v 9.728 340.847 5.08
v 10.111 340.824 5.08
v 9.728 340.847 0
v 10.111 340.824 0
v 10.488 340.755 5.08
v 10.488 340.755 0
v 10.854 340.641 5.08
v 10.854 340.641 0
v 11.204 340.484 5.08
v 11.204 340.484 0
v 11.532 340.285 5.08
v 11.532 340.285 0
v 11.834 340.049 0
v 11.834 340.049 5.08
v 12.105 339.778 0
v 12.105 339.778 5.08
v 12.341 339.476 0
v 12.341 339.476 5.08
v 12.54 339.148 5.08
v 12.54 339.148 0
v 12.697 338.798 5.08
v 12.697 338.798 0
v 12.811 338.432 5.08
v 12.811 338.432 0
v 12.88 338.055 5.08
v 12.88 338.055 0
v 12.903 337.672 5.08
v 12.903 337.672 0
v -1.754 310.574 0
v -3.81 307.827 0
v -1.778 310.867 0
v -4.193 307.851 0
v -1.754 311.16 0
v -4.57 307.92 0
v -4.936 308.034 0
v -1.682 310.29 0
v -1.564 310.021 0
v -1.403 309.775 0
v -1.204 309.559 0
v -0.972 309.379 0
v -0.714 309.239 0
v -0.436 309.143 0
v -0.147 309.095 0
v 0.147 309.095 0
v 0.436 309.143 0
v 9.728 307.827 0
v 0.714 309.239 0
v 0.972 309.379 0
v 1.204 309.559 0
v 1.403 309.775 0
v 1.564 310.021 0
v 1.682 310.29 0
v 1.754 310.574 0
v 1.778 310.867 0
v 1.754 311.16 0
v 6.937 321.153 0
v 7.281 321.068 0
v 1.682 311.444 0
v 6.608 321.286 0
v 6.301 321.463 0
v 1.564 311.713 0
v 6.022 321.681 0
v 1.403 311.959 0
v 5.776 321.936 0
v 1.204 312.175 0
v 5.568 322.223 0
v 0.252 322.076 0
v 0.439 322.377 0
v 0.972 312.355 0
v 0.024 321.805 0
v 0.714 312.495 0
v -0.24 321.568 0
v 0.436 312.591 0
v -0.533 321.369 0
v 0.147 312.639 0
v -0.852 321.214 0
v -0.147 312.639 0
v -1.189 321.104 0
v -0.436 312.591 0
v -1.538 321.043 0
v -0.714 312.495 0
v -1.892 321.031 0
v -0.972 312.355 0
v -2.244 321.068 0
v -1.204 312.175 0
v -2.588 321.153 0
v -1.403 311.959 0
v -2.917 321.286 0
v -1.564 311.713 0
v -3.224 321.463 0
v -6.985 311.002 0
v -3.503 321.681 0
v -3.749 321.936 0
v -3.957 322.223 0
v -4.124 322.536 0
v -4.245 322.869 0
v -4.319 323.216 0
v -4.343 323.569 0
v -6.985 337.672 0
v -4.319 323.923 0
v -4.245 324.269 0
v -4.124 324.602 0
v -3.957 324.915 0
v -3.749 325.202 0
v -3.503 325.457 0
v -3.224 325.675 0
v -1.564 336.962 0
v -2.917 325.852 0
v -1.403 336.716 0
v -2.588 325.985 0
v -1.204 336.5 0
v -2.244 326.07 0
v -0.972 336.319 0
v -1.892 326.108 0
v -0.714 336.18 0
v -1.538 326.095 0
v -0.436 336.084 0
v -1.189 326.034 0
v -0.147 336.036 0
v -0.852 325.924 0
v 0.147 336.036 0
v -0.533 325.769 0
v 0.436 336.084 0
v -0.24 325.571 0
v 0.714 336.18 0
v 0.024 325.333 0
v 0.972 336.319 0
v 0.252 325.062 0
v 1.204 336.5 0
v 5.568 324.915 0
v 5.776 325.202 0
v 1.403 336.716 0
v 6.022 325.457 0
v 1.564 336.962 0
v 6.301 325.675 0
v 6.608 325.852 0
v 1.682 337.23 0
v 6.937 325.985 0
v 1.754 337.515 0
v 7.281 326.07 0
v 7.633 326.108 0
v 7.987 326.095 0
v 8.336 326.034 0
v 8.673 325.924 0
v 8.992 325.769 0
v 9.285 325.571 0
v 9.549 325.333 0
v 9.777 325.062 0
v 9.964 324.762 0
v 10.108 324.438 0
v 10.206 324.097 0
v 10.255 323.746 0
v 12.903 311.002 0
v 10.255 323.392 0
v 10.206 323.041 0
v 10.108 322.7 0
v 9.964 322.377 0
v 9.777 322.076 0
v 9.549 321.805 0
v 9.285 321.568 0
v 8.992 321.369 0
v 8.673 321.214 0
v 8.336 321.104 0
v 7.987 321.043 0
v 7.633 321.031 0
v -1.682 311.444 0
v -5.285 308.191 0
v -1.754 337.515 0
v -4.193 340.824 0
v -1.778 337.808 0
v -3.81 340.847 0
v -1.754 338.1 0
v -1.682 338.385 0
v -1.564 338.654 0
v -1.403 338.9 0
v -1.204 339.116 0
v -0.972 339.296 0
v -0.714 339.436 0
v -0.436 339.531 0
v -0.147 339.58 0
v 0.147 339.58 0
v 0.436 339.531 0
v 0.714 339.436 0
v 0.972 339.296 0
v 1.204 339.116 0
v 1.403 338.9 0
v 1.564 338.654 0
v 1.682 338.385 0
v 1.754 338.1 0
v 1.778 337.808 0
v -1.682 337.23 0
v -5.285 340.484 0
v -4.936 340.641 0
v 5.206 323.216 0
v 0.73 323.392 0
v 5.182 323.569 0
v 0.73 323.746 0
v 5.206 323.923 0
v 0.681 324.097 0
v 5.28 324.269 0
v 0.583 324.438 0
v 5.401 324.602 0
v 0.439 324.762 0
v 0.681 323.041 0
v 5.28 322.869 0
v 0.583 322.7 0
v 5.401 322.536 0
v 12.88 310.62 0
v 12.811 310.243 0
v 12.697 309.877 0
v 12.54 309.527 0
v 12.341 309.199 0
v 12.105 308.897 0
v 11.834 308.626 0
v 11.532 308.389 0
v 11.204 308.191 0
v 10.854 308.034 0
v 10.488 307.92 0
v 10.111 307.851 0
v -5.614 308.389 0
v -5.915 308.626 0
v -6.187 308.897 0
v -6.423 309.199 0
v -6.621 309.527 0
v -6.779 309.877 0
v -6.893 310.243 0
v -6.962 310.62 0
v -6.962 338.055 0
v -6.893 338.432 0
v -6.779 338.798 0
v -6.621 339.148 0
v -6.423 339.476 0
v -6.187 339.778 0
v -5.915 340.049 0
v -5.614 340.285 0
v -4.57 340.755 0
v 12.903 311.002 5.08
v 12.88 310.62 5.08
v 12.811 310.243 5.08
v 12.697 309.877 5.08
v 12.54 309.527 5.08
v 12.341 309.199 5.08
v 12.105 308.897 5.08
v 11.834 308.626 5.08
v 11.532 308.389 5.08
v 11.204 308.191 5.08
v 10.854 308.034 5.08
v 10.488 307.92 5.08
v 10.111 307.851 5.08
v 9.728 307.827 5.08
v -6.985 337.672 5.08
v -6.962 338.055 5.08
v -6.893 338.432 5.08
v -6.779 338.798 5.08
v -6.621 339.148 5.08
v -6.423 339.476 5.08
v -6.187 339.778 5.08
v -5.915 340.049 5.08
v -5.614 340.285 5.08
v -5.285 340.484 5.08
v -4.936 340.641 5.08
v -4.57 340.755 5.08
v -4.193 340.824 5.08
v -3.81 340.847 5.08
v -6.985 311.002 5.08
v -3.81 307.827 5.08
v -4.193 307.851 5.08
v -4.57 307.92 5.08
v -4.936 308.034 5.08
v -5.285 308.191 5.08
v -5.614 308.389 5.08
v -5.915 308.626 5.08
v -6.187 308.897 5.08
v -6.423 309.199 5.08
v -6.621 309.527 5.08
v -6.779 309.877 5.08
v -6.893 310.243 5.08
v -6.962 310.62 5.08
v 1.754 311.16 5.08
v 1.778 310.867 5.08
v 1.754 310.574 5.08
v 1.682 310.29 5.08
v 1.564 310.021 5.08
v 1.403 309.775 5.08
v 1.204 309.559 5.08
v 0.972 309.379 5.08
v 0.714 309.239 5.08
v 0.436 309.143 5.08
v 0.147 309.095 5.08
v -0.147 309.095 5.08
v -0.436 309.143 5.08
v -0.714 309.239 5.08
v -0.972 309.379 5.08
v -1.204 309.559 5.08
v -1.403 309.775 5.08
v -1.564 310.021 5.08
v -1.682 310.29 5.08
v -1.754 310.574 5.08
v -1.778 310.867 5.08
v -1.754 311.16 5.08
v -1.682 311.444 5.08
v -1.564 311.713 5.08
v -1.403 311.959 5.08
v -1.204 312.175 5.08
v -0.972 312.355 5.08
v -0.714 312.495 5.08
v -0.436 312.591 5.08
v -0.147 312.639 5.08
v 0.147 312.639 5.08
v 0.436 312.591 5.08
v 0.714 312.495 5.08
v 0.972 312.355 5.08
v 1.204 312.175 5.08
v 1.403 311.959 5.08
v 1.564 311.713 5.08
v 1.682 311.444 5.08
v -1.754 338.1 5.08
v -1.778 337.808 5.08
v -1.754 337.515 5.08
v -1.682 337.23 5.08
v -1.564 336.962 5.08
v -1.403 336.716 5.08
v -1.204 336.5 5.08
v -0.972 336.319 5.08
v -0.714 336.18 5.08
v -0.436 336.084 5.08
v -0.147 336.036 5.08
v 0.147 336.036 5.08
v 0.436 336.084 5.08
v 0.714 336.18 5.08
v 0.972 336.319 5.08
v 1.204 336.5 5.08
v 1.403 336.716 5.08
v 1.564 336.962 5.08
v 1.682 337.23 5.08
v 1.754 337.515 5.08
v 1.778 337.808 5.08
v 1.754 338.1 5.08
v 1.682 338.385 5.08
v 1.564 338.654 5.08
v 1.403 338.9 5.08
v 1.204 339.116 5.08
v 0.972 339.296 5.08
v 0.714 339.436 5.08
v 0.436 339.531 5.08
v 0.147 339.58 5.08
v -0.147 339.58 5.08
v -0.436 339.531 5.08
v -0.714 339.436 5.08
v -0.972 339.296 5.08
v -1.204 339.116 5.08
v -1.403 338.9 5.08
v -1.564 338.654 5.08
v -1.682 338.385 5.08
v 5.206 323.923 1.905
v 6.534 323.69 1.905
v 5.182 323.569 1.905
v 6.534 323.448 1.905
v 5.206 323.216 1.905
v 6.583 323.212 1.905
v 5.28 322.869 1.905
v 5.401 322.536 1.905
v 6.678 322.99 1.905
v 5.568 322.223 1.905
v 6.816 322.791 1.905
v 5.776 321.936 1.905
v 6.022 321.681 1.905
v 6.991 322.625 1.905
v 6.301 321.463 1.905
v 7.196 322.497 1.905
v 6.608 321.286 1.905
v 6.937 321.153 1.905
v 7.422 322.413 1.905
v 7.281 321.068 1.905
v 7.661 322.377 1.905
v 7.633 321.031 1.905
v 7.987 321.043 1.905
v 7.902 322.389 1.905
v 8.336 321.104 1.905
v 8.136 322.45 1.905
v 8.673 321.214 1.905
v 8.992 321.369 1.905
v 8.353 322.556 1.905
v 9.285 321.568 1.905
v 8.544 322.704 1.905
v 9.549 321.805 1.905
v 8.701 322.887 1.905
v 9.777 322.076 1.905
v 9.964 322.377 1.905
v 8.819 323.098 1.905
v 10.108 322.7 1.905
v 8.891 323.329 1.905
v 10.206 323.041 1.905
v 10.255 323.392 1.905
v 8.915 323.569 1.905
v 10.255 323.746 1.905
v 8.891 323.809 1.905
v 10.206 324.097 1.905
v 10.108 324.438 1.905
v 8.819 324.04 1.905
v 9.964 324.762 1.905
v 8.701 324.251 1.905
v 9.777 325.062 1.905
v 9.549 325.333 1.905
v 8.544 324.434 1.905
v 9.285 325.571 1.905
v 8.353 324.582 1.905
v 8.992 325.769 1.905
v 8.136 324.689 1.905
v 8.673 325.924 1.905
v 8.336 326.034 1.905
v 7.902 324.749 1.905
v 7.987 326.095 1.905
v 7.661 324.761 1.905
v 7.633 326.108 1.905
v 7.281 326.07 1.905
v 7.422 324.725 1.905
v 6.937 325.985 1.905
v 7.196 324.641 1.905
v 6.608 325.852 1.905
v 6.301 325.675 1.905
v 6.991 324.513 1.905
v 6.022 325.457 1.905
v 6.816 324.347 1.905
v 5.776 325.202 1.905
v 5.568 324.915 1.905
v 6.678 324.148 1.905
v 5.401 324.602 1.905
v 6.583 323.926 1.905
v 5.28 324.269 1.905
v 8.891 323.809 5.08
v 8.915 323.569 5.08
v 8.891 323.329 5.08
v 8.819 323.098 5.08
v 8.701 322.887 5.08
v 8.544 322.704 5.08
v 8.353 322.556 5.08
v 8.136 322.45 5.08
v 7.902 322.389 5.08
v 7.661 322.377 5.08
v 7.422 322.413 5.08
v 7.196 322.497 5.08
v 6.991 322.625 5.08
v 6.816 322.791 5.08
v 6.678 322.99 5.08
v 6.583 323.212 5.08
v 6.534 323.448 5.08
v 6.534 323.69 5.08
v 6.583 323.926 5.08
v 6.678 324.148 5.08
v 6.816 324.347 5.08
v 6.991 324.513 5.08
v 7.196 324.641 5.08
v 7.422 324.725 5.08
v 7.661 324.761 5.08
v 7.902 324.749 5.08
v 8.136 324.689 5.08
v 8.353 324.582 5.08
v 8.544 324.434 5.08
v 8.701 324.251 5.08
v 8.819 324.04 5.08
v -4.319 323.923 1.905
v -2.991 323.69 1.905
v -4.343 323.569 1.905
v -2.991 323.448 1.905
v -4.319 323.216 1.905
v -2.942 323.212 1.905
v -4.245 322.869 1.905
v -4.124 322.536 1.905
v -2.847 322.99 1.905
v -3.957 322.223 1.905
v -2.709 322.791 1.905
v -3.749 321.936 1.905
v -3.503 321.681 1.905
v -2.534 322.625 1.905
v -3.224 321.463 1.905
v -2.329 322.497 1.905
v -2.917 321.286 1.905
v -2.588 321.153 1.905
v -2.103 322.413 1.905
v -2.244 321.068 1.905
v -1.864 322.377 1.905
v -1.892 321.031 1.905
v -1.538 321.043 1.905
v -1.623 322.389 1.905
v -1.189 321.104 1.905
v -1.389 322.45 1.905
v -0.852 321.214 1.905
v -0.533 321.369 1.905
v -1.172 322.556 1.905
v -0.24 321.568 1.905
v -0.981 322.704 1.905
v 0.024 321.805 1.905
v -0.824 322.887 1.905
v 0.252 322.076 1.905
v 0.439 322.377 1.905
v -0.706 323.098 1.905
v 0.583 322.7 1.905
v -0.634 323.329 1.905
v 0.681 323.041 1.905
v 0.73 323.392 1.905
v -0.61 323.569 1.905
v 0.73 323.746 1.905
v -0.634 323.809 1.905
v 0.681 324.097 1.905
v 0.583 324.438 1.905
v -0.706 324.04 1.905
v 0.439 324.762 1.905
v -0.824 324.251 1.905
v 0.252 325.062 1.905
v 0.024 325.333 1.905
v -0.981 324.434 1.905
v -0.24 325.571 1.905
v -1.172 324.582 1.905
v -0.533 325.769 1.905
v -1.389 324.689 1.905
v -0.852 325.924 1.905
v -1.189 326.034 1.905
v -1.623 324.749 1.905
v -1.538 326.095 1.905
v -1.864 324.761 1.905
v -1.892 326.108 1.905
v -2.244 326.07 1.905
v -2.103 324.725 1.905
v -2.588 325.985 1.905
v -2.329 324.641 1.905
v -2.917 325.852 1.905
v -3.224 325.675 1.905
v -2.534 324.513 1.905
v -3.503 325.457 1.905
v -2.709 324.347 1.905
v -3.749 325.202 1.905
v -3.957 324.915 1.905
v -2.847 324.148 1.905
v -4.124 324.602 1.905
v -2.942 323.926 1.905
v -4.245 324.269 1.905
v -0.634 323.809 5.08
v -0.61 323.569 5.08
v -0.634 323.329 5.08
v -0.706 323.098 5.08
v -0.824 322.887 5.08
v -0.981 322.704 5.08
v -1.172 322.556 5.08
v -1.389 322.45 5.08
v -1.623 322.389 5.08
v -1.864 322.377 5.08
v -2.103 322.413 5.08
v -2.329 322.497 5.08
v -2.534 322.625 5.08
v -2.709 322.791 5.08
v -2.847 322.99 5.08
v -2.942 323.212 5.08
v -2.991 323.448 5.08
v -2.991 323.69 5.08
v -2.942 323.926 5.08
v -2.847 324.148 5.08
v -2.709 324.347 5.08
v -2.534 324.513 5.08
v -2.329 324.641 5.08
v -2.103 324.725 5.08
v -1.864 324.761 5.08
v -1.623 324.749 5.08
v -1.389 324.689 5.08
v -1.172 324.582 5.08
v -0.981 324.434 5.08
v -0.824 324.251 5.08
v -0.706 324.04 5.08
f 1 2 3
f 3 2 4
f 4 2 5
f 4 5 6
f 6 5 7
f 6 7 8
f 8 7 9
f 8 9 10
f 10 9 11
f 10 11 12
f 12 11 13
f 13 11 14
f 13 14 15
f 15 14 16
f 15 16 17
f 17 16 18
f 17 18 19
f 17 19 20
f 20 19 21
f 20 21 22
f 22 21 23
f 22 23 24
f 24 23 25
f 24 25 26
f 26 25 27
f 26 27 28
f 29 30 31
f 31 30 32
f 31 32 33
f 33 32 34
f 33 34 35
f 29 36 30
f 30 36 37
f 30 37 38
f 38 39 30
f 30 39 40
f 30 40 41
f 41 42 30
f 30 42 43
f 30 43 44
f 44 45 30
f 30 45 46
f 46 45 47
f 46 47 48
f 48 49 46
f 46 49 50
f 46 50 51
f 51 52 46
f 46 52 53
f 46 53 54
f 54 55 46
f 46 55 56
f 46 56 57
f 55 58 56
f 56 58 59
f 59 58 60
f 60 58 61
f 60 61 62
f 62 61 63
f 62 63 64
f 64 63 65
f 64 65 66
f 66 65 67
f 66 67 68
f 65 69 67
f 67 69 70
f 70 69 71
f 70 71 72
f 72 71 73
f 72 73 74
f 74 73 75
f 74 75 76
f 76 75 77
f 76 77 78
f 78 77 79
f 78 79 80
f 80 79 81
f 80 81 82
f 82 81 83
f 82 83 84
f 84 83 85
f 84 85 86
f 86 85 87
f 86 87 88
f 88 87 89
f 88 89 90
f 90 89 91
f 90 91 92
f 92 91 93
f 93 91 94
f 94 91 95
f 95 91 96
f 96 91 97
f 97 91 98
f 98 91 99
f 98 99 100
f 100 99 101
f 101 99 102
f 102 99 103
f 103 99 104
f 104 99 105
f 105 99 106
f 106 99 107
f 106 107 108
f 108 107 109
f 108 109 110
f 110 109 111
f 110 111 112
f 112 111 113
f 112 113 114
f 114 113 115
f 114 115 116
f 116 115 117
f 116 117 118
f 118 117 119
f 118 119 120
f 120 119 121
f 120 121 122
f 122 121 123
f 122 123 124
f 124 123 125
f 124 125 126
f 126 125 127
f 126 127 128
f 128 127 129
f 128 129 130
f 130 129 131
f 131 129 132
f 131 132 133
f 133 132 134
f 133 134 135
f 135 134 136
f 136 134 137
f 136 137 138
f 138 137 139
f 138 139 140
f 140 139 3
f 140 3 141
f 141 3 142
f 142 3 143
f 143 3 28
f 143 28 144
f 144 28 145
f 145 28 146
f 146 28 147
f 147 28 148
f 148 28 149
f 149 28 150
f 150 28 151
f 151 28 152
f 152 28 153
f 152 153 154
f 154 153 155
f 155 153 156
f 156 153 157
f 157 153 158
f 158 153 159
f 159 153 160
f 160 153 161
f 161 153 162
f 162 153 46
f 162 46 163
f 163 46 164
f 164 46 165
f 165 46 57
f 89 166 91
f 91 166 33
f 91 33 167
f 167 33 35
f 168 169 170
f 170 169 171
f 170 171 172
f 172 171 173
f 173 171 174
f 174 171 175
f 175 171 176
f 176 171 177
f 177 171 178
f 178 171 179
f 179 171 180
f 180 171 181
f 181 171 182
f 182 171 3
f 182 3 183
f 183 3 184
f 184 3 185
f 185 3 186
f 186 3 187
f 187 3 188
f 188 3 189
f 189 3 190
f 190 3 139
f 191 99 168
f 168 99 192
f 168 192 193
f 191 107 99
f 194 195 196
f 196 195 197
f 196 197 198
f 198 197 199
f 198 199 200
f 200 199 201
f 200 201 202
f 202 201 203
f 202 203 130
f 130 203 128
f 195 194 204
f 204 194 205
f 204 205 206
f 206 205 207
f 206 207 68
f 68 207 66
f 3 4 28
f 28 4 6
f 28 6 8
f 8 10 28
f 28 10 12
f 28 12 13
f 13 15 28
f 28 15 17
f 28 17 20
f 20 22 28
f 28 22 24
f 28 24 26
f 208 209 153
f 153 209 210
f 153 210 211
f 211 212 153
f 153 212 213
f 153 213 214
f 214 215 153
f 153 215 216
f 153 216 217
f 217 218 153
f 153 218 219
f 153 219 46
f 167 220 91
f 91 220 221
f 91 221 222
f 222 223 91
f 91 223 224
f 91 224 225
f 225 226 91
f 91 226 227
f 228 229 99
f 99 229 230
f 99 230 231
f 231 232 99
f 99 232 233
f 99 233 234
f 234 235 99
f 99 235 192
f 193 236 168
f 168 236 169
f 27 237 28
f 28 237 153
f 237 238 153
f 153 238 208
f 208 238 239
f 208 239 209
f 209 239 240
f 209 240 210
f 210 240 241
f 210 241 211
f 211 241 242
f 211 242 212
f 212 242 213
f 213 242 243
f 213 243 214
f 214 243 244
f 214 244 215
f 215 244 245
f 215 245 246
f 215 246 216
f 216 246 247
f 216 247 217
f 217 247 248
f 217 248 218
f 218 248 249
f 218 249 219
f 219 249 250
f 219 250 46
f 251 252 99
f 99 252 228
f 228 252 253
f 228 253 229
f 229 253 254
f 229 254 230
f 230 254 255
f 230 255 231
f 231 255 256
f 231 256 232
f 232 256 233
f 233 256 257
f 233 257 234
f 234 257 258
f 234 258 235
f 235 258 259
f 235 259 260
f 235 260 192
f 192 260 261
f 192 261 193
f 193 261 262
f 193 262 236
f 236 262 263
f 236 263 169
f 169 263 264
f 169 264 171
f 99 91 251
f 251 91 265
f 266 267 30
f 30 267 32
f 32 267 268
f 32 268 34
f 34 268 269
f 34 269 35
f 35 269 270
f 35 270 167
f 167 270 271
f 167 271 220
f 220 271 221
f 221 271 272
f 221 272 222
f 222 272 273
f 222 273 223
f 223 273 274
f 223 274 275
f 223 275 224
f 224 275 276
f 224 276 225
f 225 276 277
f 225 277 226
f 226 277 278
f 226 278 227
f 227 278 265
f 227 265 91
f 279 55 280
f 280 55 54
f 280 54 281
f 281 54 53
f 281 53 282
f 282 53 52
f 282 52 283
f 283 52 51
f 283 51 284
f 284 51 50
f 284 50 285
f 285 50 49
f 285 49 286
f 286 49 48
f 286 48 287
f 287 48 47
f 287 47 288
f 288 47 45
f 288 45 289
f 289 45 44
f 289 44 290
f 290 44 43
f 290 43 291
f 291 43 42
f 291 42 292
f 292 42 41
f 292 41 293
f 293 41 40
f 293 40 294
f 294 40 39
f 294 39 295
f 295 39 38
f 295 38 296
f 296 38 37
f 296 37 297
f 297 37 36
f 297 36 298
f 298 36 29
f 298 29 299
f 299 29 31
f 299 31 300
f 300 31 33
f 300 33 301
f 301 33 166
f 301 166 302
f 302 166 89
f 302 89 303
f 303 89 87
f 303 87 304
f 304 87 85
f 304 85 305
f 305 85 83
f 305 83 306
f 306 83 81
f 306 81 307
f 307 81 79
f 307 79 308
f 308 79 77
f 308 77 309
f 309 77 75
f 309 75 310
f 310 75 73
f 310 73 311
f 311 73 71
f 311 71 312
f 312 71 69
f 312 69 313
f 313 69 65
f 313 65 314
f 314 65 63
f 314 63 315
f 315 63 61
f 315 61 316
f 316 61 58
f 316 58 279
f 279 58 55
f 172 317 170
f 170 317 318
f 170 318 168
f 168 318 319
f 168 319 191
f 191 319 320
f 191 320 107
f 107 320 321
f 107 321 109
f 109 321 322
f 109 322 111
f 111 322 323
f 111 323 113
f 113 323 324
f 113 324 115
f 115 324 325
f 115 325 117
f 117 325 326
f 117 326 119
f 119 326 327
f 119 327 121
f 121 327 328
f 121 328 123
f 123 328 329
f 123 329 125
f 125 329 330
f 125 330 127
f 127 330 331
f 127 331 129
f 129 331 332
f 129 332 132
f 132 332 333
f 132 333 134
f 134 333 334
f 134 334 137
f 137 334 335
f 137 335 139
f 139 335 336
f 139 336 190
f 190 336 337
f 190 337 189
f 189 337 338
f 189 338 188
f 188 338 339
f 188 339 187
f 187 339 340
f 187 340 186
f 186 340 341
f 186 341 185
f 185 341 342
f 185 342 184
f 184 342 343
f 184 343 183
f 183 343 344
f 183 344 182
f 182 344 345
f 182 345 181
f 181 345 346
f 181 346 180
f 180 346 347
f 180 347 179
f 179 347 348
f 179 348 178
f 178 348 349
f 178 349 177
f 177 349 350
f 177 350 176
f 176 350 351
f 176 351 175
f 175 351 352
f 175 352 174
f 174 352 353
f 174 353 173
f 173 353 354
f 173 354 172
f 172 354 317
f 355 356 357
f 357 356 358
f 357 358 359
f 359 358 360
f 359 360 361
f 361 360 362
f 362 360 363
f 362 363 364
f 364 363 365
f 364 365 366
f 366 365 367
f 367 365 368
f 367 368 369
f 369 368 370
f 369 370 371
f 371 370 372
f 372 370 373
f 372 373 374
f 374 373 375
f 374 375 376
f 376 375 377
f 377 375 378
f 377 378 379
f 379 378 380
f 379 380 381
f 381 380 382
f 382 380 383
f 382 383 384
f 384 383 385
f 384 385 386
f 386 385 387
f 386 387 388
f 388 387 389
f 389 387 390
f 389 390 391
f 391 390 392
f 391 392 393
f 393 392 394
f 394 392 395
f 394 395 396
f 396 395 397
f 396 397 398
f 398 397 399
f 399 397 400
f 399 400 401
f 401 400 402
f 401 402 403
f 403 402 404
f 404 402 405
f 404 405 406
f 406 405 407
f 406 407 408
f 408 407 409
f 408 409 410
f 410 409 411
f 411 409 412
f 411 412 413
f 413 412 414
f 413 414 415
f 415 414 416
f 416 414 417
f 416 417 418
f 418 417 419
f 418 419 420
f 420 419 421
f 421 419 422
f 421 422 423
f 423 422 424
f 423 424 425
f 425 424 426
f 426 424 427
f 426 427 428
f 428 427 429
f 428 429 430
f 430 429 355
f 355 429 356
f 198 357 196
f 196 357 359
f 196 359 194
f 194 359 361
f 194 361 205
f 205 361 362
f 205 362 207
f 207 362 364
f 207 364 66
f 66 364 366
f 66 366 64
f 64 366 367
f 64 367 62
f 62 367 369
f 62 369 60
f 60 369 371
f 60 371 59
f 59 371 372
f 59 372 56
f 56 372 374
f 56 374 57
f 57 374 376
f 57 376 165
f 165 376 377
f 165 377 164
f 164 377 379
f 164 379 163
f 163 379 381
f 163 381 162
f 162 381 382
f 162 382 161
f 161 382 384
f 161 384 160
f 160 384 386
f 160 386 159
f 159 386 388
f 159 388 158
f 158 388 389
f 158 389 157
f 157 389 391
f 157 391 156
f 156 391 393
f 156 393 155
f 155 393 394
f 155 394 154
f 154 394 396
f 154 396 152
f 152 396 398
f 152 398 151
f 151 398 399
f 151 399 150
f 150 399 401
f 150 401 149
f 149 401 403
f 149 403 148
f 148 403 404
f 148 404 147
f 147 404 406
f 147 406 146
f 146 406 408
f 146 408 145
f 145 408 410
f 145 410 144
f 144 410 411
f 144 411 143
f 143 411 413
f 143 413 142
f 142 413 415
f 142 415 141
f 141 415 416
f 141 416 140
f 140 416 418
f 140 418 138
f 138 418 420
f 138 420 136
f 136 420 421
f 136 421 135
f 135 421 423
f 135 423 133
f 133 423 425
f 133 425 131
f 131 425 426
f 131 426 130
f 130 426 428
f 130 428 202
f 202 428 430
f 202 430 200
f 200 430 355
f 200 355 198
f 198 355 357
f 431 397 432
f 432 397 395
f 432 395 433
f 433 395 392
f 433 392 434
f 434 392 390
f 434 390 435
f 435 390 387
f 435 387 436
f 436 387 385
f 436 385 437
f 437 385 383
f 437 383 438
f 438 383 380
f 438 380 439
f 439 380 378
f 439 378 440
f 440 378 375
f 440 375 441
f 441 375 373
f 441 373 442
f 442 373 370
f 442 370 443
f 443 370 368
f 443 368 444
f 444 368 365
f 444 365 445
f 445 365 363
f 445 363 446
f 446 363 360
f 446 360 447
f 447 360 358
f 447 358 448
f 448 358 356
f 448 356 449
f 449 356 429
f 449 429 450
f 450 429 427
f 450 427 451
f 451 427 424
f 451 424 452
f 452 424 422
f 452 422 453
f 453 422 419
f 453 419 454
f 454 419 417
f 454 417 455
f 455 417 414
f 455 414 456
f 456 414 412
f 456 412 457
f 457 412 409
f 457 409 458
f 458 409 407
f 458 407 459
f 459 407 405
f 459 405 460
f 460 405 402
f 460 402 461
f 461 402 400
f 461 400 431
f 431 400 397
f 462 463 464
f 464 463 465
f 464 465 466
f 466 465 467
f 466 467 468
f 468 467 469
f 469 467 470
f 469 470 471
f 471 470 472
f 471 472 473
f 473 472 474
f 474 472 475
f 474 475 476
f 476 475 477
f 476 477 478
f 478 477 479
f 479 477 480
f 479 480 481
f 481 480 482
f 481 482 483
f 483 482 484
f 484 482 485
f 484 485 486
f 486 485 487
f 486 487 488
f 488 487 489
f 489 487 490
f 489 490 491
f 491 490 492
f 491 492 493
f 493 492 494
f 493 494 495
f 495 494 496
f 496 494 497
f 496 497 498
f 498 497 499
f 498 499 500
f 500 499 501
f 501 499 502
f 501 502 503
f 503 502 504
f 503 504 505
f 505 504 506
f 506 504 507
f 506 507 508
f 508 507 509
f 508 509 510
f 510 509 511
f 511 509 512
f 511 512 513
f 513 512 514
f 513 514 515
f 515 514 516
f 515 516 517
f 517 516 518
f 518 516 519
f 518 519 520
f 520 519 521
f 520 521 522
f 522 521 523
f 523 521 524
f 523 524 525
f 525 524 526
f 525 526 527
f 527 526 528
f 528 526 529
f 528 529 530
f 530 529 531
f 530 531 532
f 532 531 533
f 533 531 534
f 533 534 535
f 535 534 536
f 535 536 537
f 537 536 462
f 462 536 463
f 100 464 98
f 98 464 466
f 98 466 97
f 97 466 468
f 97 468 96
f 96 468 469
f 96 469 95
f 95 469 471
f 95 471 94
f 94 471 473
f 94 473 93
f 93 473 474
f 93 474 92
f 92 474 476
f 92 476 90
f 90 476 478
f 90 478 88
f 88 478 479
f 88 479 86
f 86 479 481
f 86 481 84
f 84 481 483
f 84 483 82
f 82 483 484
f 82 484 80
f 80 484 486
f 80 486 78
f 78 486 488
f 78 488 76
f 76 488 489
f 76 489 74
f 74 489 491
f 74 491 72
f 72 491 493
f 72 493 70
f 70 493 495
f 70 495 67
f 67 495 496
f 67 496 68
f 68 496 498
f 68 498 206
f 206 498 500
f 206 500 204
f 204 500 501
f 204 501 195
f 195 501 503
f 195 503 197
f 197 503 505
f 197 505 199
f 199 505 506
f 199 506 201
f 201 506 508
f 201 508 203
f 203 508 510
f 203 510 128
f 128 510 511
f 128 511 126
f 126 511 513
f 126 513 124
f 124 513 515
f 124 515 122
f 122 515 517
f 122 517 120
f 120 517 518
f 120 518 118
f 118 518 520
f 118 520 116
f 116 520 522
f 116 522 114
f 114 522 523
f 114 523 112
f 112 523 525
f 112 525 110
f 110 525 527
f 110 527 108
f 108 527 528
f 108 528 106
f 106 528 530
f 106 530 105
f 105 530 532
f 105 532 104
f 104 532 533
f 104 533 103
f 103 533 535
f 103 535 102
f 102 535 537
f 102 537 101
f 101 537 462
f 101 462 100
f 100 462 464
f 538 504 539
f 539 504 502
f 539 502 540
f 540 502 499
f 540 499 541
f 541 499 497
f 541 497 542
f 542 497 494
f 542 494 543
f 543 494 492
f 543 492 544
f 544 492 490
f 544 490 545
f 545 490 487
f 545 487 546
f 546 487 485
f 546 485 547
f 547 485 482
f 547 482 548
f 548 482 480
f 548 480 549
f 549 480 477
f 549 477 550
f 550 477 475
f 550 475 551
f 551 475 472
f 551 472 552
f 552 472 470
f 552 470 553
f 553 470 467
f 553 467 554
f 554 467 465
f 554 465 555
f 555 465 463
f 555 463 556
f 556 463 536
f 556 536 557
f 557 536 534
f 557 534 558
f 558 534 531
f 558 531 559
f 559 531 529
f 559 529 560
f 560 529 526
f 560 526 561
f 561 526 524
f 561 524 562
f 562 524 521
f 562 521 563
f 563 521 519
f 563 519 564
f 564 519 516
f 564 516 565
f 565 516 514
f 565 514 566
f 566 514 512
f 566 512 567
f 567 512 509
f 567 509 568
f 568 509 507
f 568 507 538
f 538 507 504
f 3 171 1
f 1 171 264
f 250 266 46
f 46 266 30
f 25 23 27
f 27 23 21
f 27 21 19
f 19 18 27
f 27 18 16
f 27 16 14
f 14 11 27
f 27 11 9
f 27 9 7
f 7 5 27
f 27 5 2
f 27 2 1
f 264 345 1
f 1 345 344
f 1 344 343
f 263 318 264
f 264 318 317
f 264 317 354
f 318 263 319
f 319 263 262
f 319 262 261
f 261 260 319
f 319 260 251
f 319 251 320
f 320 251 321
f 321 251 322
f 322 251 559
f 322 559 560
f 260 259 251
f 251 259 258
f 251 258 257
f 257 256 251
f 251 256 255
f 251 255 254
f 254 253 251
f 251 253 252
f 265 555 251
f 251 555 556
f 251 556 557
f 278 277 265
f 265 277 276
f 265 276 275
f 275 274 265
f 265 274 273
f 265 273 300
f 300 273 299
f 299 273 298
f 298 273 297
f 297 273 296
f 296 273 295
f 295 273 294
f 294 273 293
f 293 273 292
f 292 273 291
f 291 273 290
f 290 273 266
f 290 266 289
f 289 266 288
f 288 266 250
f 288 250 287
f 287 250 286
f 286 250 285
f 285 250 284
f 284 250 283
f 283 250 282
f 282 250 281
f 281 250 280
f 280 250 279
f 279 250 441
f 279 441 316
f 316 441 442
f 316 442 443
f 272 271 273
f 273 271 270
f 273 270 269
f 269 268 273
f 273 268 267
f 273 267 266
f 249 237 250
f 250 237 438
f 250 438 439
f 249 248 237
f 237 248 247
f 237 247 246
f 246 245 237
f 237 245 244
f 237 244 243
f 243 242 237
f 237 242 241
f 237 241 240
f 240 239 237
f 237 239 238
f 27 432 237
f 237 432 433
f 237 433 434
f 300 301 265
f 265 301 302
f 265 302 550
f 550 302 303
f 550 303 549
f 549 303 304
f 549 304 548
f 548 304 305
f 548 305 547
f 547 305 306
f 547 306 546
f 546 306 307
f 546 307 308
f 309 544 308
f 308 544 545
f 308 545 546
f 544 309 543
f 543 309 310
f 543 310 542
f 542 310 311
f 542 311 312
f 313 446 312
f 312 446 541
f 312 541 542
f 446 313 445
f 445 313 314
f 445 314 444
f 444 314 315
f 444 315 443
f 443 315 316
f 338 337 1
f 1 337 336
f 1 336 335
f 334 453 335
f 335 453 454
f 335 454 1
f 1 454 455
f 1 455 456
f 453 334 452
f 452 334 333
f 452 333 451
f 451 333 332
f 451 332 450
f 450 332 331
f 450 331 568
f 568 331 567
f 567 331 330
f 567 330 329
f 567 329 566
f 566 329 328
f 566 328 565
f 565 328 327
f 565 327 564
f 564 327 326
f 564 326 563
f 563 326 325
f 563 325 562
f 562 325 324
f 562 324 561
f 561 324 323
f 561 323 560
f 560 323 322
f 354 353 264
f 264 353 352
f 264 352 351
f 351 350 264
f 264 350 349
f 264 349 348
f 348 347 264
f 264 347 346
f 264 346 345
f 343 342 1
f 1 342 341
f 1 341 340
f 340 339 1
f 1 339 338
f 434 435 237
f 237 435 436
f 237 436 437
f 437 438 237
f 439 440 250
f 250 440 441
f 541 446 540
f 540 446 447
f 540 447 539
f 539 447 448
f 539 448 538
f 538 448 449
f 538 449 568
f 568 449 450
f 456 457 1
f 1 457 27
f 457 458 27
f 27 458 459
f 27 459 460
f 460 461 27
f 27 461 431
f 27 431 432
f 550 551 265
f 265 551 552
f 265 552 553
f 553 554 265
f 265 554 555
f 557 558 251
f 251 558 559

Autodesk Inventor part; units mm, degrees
ref_plane "YZ Plane" through (0, 0, 0) normal (1, 0, 0) x (0, 1, 0)
ref_plane "XZ Plane" through (0, 0, 0) normal (0, 1, 0) x (-1, 0, 0)
ref_plane "Work Plane1" through (0, 0, 0) normal (0, 0, 1) x (1, 0, 0)
sketch "Sketch1" plane through (0, 0, 0) normal (0, 0, 1) x (1, 0, 0)
  line L0 (12.9032, 330.789) -> (12.9032, 321.137) projected
  line L1 (-6.985, 321.137) -> (-6.985, 330.0524) projected
  line L2 (3.1132, 307.8274) -> (-3.1132, 307.8274) projected
  line L3 (3.1132, 340.8474) -> (-3.1132, 340.8474) projected
  line L4 (12.9032, 340.8474) -> (-6.985, 340.8474)
  line L5 (-6.985, 340.8474) -> (-6.985, 307.8274)
  line L6 (-6.985, 307.8274) -> (12.9032, 307.8274)
  line L7 (12.9032, 307.8274) -> (12.9032, 340.8474)
  arc A0 (-1.7468, 337.6651) -> (-1.3298, 338.9494) centre (0, 337.8078) ccw
  arc A1 (-1.7468, 310.7243) -> (-1.3298, 312.0086) centre (0, 310.867) ccw
  circle A2 centre (0, 337.8078) radius 1.778
  point P0 (0, 0)
  dimension "d2" = 3.556
ref_plane "Work Plane2" through (-6.985, 321.137, 5.08) normal (0, 0, -1) x (0, 1, 0)
extrude "Extrusion1" add sketch "Sketch1" along normal up to surface (5.08 mm away) contours L0 L7 L6 L2 L5 L1 L4 L3 | A2
sketch "Sketch3" plane through (-6.985, 340.8474, 5.08) normal (0, 0, 1) x (1, 0, 0)
  circle A0 centre (5.1816, -17.2783) radius 1.1938 projected
  circle A1 centre (14.7066, -17.2783) radius 1.1938 projected
  circle A2 centre (5.1816, -17.2783) radius 1.1938
  circle A3 centre (14.7066, -17.2783) radius 1.1938
  arc A4 (8.2018, -4.301) -> (6.9677, -4.7921) centre (6.985, -3.0396) ccw projected
  arc A5 (8.2018, -31.2417) -> (6.9677, -31.7329) centre (6.985, -29.9804) ccw projected
  circle A6 centre (6.985, -3.0396) radius 1.778
  circle A7 centre (6.985, -29.9804) radius 1.778
  arc A8 (8.2018, -31.2417) -> (6.9677, -31.7329) centre (6.985, -29.9804) ccw
  circle A9 centre (6.985, -29.9804) radius 1.778
  point P0 (6.985, -340.8474)
  dimension "d17" = 3.556
  dimension "d18" = 3.556
  dimension "d26" = 3.556
sketch "Sketch4" plane through (0, 0, 0) normal (0, 0, -1) x (-1, 0, 0)
  circle A0 centre (1.8034, 323.5691) radius 1.1938 projected
  circle A1 centre (-7.7216, 323.5691) radius 1.1938 projected
  circle A2 centre (1.8034, 323.5691) radius 1.1938
  circle A3 centre (-7.7216, 323.5691) radius 1.1938
  point P0 (0, 0)
hole "Hole1" at (-1.8034, 323.5691, 0) direction (0, 0, 1) diameter 2.3876 end through all counterbore diameter 5.08 counterbore depth 1.905
sketch "Sketch5" plane through (0, 0, 0) normal (0, 0, -1) x (-1, 0, 0)
  circle A0 centre (-7.7216, 323.5691) radius 1.1938 projected
  circle A1 centre (-7.7216, 323.5691) radius 1.1938 projected
  circle A2 centre (-7.7216, 323.5691) radius 1.1938
  point P0 (0, 0)
hole "Hole2" at (7.7216, 323.5691, 0) direction (0, 0, 1) diameter 2.3876 end through all counterbore diameter 5.08 counterbore depth 1.905
hole "Hole3" at (0, 337.8078, 5.08) direction (0, 0, -1) diameter 3.556 end through all
sketch "Sketch6" plane through (0, 0, 0) normal (0, 0, -1) x (-1, 0, 0)
  arc A0 (0.0173, 309.1145) -> (-1.2168, 309.6057) centre (0, 310.867) ccw projected
  circle A1 centre (0, 310.867) radius 1.778
  point P0 (0, 0)
  dimension "d27" = 3.556
hole "Hole4" at (0, 310.867, 0) direction (0, 0, 1) diameter 3.556 end through all
fillet "Fillet1" radius 3.175 1 edges at (-6.985, 307.8274, 2.54)
fillet "Fillet2" radius 3.175 1 edges at (-6.985, 340.8474, 2.54)
fillet "Fillet3" radius 3.175 1 edges at (12.9032, 307.8274, 2.54)
fillet "Fillet4" radius 3.175 1 edges at (12.9032, 340.8474, 2.54)
properties part number "Switch on T nut holder"
